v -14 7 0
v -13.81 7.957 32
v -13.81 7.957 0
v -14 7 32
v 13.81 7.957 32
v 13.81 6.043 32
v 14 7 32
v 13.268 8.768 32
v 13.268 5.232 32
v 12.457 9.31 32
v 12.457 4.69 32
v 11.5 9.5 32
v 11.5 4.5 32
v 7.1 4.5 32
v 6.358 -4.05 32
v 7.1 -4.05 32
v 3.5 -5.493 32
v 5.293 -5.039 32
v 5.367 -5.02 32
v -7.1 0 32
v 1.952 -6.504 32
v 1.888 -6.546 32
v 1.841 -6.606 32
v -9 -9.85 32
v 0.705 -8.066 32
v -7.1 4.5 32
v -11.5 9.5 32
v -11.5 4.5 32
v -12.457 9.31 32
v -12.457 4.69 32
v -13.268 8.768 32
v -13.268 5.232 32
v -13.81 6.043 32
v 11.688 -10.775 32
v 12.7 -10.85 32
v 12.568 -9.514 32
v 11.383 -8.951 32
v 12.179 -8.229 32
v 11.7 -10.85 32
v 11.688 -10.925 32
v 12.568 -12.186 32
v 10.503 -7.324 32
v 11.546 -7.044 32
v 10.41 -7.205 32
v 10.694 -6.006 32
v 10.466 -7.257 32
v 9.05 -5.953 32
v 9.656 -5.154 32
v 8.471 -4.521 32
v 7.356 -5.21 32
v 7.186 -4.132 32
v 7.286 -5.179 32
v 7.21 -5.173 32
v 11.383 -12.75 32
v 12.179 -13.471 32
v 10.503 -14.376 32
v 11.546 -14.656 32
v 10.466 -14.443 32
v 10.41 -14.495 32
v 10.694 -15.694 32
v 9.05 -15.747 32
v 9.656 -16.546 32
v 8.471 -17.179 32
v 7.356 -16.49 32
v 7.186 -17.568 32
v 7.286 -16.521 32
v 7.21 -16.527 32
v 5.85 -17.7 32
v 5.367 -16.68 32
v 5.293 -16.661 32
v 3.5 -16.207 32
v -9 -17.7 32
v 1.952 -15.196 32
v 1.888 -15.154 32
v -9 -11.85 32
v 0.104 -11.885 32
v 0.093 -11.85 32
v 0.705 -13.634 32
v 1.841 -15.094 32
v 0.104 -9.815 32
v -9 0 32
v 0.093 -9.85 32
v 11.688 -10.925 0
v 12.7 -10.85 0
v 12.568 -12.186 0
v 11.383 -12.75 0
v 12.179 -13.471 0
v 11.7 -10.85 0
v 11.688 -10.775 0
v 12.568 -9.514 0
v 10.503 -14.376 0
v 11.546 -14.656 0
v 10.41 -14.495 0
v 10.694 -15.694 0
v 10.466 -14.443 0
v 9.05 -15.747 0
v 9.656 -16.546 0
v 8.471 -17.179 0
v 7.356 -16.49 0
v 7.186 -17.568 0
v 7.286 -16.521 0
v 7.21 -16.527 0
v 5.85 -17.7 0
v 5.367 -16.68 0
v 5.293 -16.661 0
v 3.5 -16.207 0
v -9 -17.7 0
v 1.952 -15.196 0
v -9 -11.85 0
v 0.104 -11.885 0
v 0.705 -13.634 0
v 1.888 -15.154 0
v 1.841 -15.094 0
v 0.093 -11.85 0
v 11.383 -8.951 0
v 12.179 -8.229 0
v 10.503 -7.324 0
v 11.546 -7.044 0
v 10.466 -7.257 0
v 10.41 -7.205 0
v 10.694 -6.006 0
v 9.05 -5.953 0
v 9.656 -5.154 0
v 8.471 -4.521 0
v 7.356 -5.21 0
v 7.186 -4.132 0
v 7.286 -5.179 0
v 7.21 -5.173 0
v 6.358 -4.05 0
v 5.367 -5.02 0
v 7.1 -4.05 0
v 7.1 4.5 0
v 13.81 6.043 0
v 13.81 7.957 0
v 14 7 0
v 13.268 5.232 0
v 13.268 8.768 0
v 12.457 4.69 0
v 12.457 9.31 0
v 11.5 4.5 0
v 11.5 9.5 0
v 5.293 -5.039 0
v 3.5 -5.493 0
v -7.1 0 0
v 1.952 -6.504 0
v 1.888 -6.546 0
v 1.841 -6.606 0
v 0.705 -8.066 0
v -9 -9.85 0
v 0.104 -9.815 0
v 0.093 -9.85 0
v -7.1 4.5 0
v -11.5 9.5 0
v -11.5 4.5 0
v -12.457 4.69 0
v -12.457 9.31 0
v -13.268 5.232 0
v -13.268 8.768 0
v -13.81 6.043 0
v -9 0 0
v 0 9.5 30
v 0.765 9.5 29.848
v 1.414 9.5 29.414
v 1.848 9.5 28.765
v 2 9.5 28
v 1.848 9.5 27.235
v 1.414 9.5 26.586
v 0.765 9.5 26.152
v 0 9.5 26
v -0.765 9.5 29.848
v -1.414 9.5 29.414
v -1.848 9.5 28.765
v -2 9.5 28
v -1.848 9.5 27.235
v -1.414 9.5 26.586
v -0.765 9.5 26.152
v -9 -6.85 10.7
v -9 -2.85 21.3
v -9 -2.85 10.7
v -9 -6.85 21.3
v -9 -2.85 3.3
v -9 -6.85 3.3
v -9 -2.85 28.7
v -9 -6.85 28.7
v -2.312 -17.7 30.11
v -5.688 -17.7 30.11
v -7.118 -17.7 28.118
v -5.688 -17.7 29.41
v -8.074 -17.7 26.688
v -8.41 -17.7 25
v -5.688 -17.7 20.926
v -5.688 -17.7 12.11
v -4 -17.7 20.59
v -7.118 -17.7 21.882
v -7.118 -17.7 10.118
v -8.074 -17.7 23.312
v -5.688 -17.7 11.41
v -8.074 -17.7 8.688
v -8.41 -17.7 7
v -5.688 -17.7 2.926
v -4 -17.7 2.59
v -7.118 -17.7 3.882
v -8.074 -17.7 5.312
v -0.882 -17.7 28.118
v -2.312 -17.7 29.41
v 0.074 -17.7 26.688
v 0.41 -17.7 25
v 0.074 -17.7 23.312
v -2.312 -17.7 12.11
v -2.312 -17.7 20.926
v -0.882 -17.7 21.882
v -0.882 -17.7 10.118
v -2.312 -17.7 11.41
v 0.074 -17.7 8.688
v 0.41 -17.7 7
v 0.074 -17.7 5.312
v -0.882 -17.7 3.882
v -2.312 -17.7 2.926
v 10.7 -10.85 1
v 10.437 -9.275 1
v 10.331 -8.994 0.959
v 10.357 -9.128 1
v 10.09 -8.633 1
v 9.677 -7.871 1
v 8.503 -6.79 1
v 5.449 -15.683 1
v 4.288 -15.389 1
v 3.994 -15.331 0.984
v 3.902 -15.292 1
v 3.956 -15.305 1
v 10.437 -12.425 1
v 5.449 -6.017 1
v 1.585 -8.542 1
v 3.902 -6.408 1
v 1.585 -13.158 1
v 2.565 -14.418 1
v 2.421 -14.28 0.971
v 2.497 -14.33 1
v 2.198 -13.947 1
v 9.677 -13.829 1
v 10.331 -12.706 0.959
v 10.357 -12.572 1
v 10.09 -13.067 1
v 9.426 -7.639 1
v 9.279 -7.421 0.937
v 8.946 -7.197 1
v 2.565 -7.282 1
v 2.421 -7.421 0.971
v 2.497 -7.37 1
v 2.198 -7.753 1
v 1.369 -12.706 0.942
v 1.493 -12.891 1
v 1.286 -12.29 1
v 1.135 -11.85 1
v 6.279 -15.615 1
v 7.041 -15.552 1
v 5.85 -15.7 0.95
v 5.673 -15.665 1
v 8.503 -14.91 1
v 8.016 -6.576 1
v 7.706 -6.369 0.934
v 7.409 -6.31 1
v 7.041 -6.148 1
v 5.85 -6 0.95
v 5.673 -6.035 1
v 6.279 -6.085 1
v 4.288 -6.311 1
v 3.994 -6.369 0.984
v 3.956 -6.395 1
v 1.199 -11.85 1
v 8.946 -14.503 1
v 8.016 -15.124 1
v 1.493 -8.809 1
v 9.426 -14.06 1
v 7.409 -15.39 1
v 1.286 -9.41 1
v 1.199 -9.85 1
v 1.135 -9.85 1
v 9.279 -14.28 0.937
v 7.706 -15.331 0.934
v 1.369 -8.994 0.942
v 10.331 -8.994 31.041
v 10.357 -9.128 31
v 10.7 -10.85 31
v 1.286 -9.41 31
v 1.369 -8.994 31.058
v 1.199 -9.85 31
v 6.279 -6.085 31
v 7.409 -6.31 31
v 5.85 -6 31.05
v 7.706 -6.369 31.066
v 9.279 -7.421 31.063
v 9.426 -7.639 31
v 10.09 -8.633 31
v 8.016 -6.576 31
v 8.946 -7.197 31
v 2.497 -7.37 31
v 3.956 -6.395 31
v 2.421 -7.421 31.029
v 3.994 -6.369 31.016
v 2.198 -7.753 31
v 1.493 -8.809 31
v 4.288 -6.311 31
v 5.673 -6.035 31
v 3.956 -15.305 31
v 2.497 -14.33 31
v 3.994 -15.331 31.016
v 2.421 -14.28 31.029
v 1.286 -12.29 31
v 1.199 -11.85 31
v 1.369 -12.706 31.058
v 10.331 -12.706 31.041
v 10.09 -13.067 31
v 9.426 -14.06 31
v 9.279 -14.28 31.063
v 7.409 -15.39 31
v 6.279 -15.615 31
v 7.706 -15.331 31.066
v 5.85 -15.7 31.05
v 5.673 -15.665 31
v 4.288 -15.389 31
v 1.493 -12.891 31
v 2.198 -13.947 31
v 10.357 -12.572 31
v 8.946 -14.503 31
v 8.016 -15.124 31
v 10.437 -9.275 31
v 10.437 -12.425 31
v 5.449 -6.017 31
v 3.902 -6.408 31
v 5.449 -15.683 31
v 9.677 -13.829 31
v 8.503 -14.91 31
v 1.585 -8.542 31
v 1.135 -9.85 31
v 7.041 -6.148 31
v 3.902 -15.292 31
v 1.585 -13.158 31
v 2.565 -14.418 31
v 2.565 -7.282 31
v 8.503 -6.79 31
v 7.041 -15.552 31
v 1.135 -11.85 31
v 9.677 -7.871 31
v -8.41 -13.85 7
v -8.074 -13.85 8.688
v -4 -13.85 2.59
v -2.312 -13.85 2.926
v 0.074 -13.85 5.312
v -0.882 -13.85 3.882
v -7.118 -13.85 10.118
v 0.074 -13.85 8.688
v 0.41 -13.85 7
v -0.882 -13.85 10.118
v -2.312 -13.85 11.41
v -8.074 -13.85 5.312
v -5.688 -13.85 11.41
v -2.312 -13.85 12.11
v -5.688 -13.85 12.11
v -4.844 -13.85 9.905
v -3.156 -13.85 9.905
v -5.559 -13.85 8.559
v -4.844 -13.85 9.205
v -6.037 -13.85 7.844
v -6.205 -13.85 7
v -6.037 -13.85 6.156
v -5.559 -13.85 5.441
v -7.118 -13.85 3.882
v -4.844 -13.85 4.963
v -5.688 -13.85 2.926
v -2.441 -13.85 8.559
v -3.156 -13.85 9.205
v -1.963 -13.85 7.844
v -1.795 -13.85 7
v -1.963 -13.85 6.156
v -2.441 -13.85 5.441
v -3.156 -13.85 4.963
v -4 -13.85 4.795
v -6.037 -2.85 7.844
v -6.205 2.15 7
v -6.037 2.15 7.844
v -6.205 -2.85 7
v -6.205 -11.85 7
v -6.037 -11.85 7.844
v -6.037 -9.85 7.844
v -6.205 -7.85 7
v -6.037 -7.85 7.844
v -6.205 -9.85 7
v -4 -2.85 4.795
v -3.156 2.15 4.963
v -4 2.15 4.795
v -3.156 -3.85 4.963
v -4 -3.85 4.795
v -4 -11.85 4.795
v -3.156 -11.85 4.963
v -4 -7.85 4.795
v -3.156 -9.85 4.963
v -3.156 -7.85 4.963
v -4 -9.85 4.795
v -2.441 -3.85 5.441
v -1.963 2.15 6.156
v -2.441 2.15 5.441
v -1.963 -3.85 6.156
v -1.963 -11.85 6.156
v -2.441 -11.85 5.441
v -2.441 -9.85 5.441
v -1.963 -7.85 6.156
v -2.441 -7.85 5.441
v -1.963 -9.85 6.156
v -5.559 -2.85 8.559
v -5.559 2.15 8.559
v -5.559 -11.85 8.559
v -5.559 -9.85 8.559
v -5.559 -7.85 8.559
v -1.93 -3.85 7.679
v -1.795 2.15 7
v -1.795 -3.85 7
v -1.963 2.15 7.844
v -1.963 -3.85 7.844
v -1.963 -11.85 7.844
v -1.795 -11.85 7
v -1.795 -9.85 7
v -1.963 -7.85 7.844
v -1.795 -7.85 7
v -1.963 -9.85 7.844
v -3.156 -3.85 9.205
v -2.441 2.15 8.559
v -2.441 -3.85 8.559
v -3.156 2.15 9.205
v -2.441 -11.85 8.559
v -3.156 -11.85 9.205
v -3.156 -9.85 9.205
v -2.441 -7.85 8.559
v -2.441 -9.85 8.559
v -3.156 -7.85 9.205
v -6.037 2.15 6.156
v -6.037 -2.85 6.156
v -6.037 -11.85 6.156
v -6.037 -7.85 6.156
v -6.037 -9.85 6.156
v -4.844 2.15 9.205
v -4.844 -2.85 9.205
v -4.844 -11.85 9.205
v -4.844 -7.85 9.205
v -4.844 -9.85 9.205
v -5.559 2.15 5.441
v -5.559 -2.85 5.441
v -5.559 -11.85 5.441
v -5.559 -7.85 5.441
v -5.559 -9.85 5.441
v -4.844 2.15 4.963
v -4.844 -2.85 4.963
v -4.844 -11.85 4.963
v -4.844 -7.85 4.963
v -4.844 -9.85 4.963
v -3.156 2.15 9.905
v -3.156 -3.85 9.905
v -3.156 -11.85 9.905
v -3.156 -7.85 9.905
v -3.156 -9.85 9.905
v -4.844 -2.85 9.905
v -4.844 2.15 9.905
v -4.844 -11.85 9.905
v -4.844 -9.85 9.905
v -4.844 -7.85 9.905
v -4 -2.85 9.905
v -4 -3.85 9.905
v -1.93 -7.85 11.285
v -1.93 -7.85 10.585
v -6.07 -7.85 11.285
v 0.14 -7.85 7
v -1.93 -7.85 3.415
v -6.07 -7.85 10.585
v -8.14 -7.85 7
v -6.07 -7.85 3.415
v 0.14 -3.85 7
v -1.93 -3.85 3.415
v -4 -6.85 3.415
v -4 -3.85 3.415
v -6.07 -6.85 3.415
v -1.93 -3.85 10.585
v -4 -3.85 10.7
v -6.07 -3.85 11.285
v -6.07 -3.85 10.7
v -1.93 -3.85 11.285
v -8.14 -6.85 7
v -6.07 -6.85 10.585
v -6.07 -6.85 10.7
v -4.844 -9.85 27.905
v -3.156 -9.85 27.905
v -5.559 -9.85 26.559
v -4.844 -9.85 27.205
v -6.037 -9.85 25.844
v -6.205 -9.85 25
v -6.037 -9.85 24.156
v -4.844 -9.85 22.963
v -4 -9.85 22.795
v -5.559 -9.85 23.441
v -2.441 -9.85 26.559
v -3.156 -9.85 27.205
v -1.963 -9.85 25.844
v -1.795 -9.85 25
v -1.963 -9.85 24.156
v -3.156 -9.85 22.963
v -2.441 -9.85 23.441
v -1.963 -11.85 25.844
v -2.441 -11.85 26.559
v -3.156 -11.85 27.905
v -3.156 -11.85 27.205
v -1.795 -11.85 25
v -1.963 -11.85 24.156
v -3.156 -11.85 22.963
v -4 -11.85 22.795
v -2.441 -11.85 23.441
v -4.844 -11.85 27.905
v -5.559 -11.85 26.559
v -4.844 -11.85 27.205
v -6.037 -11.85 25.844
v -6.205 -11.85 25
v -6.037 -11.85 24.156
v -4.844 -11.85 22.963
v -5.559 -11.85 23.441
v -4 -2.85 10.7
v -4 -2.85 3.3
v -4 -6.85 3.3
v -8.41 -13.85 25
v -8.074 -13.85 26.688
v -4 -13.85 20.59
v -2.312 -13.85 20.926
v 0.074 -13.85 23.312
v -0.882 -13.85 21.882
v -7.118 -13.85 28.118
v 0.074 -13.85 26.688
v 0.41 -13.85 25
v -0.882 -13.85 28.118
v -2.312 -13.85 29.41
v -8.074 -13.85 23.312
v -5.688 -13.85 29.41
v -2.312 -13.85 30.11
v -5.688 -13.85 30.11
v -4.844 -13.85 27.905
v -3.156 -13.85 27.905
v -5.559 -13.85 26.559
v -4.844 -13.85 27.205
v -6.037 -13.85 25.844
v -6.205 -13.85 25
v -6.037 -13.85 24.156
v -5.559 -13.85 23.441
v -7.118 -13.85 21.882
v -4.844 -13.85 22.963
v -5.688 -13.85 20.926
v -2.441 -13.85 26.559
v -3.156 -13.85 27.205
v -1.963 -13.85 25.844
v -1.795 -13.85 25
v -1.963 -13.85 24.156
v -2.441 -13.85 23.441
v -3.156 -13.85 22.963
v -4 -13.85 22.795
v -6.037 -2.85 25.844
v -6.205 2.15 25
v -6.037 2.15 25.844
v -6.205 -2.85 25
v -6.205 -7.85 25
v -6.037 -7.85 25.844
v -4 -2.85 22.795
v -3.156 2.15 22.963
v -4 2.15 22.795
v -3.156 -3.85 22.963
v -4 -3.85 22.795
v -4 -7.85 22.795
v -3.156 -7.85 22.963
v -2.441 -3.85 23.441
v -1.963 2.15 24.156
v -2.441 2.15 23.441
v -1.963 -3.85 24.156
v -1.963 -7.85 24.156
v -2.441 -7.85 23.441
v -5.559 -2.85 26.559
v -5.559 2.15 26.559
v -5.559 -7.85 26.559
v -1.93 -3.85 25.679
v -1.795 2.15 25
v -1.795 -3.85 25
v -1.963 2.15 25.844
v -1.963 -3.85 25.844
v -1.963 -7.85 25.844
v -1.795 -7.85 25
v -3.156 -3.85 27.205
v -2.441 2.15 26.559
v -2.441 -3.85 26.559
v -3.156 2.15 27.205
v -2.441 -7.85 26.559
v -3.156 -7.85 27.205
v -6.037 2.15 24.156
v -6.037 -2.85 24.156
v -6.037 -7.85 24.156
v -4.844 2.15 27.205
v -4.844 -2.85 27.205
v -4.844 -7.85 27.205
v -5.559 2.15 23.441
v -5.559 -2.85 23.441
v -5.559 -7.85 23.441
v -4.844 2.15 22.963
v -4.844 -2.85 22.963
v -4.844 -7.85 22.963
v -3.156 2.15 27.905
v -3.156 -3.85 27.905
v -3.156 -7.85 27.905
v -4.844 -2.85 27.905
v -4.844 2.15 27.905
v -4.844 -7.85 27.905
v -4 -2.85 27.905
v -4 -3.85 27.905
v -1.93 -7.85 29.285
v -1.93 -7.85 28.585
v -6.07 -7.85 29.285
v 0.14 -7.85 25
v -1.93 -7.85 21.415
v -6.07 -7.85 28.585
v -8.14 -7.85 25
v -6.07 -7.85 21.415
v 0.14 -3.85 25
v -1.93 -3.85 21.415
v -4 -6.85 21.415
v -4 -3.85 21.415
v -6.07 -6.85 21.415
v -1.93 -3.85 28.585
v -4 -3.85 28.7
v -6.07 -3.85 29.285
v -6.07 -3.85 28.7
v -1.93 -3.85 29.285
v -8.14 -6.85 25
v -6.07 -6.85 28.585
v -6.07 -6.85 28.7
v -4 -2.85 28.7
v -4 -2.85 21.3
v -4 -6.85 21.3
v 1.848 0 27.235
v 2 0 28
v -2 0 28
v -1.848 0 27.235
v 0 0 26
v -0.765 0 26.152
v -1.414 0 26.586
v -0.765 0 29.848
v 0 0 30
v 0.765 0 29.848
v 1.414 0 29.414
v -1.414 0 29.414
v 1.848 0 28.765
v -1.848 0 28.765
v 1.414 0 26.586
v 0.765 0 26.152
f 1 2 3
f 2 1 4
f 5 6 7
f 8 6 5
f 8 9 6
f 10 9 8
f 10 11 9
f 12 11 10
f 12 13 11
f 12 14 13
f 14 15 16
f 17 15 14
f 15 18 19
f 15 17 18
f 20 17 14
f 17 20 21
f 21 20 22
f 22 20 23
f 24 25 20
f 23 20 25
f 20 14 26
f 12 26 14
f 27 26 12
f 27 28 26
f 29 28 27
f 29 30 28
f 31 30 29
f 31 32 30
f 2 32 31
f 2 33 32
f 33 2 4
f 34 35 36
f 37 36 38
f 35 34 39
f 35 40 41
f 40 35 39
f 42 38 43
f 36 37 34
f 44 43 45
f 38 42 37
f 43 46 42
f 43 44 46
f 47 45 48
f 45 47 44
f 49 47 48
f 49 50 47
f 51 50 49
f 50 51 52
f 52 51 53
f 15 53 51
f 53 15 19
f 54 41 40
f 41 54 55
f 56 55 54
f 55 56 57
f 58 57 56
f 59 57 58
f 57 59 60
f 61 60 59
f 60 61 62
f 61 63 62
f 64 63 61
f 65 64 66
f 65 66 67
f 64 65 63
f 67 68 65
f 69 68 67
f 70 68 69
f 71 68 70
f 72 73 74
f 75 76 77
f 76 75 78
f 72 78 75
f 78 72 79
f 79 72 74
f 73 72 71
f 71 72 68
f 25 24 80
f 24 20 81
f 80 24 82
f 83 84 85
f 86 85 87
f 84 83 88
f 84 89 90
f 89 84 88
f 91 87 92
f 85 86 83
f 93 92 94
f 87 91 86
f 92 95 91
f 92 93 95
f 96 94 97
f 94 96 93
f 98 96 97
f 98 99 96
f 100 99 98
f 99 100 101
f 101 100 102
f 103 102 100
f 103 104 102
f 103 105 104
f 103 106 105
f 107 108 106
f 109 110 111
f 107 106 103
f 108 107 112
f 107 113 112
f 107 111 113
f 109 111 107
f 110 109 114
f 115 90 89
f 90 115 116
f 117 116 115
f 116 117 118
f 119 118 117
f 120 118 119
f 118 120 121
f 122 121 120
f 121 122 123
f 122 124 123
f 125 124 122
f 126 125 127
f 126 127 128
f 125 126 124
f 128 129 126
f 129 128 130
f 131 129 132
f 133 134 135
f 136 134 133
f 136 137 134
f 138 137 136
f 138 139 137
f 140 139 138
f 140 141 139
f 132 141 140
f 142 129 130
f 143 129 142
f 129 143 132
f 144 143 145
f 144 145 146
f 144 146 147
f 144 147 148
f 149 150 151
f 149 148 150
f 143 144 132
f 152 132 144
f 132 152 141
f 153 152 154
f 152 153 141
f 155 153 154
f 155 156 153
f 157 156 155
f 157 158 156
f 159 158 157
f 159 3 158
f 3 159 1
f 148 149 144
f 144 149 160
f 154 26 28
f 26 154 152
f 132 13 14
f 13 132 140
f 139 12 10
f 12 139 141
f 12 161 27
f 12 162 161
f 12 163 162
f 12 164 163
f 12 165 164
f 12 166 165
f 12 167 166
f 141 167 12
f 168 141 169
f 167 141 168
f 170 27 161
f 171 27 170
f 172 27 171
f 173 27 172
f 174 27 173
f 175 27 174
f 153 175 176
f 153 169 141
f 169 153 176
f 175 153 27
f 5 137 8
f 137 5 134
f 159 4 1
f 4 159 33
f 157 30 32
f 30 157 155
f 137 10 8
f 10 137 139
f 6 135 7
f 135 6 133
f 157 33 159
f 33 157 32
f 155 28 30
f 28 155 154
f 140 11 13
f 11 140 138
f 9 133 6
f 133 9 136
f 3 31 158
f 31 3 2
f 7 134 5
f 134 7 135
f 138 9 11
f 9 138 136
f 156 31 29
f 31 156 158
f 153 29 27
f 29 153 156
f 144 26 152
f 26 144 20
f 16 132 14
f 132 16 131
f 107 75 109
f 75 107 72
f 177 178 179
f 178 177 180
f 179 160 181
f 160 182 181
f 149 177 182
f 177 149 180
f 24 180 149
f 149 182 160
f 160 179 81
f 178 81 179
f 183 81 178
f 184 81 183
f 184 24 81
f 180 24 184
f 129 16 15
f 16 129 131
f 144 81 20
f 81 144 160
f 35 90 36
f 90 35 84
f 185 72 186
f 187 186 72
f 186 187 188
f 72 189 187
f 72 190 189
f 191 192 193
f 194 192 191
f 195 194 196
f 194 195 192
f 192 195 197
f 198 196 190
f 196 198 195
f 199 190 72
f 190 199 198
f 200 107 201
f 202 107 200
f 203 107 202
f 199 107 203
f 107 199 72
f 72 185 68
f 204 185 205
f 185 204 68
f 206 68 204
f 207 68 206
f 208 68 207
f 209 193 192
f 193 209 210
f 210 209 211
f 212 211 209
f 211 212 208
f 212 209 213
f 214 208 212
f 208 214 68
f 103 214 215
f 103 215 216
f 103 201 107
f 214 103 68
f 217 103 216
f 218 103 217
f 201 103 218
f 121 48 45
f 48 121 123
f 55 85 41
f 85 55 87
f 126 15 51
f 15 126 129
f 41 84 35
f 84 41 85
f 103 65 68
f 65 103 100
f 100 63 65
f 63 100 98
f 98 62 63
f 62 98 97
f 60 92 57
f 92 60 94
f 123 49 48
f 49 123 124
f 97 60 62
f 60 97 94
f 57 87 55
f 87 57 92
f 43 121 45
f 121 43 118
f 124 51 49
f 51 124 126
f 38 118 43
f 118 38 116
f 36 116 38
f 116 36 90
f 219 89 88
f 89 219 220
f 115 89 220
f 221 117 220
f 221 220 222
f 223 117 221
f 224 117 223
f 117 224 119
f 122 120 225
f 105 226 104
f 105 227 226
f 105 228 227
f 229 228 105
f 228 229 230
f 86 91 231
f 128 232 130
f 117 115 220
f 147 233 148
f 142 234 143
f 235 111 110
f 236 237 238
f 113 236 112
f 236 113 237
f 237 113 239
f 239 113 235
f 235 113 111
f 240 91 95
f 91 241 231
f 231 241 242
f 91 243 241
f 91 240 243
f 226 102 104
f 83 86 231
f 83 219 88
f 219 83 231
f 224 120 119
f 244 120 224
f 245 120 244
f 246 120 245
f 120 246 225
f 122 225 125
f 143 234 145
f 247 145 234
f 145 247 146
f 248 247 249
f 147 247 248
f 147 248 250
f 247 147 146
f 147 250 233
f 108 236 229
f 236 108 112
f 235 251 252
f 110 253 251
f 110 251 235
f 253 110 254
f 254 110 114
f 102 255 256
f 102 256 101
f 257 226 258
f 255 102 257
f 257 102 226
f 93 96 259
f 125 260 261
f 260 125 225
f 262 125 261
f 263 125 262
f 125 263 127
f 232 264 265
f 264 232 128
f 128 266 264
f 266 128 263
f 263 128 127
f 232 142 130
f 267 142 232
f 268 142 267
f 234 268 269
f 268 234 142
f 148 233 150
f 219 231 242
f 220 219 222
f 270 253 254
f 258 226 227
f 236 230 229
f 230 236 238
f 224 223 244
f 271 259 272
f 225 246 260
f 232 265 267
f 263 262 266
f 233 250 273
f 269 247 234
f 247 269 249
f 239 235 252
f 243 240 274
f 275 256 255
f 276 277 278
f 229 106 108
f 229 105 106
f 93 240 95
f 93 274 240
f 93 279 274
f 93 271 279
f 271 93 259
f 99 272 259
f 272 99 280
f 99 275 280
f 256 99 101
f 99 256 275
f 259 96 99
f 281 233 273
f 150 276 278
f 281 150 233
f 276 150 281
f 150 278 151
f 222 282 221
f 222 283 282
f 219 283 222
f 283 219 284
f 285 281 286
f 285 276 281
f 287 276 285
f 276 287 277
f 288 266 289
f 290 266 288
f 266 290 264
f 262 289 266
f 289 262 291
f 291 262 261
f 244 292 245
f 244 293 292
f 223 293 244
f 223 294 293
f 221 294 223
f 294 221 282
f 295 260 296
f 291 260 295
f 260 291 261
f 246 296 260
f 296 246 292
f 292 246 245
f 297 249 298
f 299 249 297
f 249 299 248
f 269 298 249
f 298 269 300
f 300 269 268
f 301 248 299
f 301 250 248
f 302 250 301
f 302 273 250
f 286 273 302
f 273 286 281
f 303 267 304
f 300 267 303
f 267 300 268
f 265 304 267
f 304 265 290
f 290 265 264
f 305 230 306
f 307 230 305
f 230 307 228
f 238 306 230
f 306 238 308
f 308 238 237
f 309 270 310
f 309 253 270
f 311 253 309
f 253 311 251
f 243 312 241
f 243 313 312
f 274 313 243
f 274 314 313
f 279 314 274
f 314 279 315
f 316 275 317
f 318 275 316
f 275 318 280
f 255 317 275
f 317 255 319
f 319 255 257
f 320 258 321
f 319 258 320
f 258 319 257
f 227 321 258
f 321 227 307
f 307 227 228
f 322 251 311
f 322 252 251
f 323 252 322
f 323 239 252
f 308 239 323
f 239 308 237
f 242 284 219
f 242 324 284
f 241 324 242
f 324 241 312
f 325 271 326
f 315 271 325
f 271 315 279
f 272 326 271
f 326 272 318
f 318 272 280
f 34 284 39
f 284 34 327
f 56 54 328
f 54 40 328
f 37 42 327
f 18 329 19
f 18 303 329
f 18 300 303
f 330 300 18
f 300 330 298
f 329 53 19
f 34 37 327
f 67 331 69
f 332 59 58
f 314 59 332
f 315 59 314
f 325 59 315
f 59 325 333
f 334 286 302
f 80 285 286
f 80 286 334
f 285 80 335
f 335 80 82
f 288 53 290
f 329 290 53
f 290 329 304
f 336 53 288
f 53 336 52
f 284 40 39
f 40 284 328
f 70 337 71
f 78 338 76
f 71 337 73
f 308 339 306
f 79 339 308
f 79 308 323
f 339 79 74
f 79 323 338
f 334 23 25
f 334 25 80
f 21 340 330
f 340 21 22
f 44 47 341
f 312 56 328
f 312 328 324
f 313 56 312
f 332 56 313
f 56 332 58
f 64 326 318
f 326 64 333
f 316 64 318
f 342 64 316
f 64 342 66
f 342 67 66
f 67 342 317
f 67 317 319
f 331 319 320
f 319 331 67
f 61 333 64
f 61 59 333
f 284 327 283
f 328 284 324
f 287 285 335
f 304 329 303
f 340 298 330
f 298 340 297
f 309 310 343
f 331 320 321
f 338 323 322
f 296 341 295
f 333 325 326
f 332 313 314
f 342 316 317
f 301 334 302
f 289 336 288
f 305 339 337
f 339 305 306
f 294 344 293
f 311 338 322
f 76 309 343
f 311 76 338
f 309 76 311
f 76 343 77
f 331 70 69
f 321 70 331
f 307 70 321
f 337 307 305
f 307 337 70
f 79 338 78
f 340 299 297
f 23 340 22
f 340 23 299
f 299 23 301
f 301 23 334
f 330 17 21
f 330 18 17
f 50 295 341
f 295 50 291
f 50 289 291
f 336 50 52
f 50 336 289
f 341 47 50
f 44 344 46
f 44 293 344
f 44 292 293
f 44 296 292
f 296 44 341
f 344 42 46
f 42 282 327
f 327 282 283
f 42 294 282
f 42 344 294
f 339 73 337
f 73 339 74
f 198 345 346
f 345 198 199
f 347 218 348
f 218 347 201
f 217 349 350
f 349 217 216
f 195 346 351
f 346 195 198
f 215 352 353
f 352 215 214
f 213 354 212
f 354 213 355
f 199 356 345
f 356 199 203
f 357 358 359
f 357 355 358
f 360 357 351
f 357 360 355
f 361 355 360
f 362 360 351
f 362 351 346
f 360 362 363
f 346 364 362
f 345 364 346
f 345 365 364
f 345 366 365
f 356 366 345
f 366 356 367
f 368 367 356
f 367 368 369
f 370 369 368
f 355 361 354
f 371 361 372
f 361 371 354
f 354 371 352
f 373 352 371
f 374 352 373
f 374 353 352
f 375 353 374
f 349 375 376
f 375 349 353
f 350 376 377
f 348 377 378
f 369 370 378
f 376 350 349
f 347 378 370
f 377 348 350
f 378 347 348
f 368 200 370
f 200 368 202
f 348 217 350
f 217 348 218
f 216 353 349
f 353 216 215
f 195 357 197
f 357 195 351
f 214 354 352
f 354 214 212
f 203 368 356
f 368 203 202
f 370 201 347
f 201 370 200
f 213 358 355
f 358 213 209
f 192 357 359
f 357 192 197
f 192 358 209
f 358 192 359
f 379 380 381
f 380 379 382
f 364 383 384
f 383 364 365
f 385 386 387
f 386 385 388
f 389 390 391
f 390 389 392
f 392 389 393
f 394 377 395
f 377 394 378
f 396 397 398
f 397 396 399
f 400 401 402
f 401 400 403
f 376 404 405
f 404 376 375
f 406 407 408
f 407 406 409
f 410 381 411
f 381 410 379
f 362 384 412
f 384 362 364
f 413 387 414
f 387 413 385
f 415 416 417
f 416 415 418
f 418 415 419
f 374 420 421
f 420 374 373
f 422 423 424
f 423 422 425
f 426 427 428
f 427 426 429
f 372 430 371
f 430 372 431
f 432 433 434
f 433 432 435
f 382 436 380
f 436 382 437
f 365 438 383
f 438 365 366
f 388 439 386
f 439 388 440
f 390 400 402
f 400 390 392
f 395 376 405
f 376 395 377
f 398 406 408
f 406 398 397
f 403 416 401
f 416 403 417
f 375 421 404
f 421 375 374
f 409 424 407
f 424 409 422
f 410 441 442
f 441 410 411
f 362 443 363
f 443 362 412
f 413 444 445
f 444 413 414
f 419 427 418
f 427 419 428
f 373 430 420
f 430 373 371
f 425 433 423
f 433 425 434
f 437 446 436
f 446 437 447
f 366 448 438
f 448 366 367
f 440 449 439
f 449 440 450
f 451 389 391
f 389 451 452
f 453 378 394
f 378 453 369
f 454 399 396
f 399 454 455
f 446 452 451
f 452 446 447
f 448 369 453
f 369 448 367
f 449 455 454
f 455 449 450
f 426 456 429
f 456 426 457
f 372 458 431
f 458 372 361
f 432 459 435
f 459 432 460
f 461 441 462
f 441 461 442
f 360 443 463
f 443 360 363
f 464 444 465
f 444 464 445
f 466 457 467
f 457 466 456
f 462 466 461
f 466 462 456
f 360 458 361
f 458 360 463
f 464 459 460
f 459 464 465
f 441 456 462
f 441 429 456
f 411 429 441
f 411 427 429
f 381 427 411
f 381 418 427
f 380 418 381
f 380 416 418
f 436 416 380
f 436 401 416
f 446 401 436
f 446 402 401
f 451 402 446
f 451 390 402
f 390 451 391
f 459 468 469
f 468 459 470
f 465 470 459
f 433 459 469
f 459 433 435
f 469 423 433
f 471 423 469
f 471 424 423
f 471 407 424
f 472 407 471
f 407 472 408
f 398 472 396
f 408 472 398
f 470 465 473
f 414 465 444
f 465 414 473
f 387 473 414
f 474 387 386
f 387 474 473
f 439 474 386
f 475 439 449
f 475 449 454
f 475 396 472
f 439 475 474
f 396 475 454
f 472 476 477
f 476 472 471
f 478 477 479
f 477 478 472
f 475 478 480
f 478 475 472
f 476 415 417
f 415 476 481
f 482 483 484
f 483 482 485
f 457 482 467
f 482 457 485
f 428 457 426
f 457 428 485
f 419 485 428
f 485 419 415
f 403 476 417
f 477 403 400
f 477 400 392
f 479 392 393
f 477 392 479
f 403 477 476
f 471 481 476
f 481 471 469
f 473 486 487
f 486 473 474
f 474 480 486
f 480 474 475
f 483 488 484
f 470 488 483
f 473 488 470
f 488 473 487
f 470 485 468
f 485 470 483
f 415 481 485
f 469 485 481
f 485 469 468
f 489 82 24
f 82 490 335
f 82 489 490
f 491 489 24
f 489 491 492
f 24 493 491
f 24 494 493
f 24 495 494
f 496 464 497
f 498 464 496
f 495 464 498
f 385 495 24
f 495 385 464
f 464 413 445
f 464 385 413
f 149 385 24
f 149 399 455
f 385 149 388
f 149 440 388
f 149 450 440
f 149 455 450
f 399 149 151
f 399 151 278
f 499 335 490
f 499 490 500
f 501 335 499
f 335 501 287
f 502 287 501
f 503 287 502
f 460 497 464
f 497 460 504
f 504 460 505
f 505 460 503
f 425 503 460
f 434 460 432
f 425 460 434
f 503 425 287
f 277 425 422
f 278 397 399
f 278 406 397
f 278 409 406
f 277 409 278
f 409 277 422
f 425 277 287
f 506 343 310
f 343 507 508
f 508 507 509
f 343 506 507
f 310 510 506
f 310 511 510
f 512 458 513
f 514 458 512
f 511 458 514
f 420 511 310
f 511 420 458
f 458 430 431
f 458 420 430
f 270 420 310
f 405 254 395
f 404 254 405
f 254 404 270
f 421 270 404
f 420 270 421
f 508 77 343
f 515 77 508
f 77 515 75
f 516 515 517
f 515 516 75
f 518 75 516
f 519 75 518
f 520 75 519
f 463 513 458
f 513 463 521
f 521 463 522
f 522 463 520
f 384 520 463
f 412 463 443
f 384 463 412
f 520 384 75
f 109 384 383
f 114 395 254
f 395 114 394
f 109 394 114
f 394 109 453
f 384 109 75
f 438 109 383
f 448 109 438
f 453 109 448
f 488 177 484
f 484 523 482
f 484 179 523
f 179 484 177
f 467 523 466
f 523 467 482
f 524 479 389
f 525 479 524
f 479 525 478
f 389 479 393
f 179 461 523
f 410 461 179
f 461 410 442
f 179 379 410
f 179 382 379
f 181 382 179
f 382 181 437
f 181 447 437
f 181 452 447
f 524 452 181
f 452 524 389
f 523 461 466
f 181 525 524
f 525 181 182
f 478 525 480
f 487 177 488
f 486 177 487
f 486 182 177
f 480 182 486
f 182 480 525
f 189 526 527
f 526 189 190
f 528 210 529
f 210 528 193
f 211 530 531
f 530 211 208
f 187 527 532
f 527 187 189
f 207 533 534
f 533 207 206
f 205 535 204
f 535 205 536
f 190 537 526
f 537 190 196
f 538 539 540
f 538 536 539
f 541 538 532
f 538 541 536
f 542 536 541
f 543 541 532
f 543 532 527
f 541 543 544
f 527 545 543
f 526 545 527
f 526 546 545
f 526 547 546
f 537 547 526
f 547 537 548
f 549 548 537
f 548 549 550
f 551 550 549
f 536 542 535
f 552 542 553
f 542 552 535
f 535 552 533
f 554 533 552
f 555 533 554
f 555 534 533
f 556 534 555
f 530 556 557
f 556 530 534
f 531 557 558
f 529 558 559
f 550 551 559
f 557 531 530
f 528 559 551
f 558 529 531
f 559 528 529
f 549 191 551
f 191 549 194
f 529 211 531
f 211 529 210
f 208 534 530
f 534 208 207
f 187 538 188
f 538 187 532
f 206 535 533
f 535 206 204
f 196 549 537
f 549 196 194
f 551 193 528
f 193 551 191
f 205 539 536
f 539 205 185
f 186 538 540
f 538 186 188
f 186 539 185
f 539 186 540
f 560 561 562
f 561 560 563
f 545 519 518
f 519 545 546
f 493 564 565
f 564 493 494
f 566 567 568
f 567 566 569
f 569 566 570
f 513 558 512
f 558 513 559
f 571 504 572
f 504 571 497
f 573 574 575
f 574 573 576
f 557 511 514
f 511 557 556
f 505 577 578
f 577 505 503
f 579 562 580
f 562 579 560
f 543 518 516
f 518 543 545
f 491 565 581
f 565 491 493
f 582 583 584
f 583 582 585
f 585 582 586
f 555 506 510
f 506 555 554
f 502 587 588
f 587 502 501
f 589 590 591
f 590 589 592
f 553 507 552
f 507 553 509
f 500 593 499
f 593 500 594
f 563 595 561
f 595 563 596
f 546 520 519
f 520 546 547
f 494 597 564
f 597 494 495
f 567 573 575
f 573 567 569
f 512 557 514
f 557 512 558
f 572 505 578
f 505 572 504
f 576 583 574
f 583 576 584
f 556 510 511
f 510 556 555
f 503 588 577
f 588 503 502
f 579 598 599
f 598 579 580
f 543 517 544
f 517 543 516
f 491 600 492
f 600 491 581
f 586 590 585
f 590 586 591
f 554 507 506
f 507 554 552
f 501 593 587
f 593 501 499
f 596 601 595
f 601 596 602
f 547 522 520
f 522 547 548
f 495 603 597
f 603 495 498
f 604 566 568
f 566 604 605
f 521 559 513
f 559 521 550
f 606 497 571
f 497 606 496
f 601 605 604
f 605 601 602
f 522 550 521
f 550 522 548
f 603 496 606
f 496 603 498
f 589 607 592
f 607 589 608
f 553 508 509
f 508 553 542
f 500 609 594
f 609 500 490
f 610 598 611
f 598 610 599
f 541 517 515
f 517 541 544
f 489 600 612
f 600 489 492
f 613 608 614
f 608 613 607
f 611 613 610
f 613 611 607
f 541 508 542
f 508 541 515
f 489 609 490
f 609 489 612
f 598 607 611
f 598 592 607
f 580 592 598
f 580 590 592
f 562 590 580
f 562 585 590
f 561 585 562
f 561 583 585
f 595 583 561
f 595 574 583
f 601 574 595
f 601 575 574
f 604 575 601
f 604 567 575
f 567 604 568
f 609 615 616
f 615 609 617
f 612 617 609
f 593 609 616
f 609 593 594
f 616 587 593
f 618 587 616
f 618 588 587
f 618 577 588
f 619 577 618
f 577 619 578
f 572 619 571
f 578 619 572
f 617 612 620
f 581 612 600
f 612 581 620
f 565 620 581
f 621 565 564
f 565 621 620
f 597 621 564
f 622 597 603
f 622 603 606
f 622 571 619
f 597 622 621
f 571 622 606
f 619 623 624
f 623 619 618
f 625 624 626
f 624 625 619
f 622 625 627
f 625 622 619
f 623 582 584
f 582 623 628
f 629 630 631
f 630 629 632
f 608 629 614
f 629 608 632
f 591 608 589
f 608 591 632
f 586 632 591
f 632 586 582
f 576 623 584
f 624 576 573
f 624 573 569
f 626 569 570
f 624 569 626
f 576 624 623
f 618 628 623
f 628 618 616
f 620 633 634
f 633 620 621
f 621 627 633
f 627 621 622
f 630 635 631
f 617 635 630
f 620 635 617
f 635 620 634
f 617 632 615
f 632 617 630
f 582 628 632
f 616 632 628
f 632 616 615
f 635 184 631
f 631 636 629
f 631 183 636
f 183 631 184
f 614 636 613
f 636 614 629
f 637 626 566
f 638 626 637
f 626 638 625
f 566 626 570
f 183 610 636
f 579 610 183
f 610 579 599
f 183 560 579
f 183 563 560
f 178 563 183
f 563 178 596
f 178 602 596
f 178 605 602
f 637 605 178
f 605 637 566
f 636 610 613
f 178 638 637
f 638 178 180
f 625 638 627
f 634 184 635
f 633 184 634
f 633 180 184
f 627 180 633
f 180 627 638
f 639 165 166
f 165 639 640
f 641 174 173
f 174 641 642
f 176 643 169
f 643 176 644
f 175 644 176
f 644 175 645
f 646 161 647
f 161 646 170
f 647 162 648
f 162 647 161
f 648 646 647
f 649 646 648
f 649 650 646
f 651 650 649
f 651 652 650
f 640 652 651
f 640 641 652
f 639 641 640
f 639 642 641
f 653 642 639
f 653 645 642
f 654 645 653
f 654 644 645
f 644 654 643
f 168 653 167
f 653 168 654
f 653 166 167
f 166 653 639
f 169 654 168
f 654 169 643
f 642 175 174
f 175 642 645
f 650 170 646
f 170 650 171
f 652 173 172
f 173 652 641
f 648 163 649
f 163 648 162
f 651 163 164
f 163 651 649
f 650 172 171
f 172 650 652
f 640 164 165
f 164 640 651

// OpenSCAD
use <../utilities.scad>;
d=0.05;
h=32;
rack_r = 9.5/2+0.1;
rack_t = 2;
rack_pos = [rack_r+1,-rack_r-rack_t-4,0];

module lock_fitting(h=10){
    //fits the Abus lock carrier
    t_y = 7;
    t_t = 5;
    t_w = 28;
    neck_w = 14.4-0.2;
    
    difference(){
        union(){
            //T-shaped bit that mates to the lock
            hull() reflect([1,0,0]) translate([(t_w-t_t)/2,t_y,0]) cylinder(r=t_t/2,h=h,$fn=16);
            translate([-neck_w/2,-d,0]) cube([neck_w,t_y+d,h]);
            translate([-rack_r-10+rack_pos[0],-4-d,0]) cube([neck_w/2-(-rack_r-10+rack_pos[0]),4+d,h]);
            
            //clamp
            translate(rack_pos){
                hull(){
                    cylinder(r=rack_r+rack_t,h=h,$fn=32);
                    translate([-rack_r-10,-rack_r-rack_t,0]) cube([10,2*rack_r+2*rack_t,h]);
                }
            }
        }
        
        //clamp stuff
        translate(rack_pos){
            chamfered_hole(r=rack_r,h=h); //hole for rack
            
            //pinch bolt
            translate([-rack_r-5,0,7]) repeat([0,0,h-7*2],2){
                mirror([0,1,0]) pinch_y(4,screw_l=8,gap=[15,2,999]);
                translate([-999,4,-3.7]) cube([999,4,7.4]); //nut access
            }
        }
        
        //fixing screw (just in case)
        translate([0,0,28]) rotate([-90,0,0]) cylinder(r=2,h=999,$fn=16);
    }
}

module lock_clip(){
    lock_r = 14/2-0.5;
}
lock_fitting(h=h);
